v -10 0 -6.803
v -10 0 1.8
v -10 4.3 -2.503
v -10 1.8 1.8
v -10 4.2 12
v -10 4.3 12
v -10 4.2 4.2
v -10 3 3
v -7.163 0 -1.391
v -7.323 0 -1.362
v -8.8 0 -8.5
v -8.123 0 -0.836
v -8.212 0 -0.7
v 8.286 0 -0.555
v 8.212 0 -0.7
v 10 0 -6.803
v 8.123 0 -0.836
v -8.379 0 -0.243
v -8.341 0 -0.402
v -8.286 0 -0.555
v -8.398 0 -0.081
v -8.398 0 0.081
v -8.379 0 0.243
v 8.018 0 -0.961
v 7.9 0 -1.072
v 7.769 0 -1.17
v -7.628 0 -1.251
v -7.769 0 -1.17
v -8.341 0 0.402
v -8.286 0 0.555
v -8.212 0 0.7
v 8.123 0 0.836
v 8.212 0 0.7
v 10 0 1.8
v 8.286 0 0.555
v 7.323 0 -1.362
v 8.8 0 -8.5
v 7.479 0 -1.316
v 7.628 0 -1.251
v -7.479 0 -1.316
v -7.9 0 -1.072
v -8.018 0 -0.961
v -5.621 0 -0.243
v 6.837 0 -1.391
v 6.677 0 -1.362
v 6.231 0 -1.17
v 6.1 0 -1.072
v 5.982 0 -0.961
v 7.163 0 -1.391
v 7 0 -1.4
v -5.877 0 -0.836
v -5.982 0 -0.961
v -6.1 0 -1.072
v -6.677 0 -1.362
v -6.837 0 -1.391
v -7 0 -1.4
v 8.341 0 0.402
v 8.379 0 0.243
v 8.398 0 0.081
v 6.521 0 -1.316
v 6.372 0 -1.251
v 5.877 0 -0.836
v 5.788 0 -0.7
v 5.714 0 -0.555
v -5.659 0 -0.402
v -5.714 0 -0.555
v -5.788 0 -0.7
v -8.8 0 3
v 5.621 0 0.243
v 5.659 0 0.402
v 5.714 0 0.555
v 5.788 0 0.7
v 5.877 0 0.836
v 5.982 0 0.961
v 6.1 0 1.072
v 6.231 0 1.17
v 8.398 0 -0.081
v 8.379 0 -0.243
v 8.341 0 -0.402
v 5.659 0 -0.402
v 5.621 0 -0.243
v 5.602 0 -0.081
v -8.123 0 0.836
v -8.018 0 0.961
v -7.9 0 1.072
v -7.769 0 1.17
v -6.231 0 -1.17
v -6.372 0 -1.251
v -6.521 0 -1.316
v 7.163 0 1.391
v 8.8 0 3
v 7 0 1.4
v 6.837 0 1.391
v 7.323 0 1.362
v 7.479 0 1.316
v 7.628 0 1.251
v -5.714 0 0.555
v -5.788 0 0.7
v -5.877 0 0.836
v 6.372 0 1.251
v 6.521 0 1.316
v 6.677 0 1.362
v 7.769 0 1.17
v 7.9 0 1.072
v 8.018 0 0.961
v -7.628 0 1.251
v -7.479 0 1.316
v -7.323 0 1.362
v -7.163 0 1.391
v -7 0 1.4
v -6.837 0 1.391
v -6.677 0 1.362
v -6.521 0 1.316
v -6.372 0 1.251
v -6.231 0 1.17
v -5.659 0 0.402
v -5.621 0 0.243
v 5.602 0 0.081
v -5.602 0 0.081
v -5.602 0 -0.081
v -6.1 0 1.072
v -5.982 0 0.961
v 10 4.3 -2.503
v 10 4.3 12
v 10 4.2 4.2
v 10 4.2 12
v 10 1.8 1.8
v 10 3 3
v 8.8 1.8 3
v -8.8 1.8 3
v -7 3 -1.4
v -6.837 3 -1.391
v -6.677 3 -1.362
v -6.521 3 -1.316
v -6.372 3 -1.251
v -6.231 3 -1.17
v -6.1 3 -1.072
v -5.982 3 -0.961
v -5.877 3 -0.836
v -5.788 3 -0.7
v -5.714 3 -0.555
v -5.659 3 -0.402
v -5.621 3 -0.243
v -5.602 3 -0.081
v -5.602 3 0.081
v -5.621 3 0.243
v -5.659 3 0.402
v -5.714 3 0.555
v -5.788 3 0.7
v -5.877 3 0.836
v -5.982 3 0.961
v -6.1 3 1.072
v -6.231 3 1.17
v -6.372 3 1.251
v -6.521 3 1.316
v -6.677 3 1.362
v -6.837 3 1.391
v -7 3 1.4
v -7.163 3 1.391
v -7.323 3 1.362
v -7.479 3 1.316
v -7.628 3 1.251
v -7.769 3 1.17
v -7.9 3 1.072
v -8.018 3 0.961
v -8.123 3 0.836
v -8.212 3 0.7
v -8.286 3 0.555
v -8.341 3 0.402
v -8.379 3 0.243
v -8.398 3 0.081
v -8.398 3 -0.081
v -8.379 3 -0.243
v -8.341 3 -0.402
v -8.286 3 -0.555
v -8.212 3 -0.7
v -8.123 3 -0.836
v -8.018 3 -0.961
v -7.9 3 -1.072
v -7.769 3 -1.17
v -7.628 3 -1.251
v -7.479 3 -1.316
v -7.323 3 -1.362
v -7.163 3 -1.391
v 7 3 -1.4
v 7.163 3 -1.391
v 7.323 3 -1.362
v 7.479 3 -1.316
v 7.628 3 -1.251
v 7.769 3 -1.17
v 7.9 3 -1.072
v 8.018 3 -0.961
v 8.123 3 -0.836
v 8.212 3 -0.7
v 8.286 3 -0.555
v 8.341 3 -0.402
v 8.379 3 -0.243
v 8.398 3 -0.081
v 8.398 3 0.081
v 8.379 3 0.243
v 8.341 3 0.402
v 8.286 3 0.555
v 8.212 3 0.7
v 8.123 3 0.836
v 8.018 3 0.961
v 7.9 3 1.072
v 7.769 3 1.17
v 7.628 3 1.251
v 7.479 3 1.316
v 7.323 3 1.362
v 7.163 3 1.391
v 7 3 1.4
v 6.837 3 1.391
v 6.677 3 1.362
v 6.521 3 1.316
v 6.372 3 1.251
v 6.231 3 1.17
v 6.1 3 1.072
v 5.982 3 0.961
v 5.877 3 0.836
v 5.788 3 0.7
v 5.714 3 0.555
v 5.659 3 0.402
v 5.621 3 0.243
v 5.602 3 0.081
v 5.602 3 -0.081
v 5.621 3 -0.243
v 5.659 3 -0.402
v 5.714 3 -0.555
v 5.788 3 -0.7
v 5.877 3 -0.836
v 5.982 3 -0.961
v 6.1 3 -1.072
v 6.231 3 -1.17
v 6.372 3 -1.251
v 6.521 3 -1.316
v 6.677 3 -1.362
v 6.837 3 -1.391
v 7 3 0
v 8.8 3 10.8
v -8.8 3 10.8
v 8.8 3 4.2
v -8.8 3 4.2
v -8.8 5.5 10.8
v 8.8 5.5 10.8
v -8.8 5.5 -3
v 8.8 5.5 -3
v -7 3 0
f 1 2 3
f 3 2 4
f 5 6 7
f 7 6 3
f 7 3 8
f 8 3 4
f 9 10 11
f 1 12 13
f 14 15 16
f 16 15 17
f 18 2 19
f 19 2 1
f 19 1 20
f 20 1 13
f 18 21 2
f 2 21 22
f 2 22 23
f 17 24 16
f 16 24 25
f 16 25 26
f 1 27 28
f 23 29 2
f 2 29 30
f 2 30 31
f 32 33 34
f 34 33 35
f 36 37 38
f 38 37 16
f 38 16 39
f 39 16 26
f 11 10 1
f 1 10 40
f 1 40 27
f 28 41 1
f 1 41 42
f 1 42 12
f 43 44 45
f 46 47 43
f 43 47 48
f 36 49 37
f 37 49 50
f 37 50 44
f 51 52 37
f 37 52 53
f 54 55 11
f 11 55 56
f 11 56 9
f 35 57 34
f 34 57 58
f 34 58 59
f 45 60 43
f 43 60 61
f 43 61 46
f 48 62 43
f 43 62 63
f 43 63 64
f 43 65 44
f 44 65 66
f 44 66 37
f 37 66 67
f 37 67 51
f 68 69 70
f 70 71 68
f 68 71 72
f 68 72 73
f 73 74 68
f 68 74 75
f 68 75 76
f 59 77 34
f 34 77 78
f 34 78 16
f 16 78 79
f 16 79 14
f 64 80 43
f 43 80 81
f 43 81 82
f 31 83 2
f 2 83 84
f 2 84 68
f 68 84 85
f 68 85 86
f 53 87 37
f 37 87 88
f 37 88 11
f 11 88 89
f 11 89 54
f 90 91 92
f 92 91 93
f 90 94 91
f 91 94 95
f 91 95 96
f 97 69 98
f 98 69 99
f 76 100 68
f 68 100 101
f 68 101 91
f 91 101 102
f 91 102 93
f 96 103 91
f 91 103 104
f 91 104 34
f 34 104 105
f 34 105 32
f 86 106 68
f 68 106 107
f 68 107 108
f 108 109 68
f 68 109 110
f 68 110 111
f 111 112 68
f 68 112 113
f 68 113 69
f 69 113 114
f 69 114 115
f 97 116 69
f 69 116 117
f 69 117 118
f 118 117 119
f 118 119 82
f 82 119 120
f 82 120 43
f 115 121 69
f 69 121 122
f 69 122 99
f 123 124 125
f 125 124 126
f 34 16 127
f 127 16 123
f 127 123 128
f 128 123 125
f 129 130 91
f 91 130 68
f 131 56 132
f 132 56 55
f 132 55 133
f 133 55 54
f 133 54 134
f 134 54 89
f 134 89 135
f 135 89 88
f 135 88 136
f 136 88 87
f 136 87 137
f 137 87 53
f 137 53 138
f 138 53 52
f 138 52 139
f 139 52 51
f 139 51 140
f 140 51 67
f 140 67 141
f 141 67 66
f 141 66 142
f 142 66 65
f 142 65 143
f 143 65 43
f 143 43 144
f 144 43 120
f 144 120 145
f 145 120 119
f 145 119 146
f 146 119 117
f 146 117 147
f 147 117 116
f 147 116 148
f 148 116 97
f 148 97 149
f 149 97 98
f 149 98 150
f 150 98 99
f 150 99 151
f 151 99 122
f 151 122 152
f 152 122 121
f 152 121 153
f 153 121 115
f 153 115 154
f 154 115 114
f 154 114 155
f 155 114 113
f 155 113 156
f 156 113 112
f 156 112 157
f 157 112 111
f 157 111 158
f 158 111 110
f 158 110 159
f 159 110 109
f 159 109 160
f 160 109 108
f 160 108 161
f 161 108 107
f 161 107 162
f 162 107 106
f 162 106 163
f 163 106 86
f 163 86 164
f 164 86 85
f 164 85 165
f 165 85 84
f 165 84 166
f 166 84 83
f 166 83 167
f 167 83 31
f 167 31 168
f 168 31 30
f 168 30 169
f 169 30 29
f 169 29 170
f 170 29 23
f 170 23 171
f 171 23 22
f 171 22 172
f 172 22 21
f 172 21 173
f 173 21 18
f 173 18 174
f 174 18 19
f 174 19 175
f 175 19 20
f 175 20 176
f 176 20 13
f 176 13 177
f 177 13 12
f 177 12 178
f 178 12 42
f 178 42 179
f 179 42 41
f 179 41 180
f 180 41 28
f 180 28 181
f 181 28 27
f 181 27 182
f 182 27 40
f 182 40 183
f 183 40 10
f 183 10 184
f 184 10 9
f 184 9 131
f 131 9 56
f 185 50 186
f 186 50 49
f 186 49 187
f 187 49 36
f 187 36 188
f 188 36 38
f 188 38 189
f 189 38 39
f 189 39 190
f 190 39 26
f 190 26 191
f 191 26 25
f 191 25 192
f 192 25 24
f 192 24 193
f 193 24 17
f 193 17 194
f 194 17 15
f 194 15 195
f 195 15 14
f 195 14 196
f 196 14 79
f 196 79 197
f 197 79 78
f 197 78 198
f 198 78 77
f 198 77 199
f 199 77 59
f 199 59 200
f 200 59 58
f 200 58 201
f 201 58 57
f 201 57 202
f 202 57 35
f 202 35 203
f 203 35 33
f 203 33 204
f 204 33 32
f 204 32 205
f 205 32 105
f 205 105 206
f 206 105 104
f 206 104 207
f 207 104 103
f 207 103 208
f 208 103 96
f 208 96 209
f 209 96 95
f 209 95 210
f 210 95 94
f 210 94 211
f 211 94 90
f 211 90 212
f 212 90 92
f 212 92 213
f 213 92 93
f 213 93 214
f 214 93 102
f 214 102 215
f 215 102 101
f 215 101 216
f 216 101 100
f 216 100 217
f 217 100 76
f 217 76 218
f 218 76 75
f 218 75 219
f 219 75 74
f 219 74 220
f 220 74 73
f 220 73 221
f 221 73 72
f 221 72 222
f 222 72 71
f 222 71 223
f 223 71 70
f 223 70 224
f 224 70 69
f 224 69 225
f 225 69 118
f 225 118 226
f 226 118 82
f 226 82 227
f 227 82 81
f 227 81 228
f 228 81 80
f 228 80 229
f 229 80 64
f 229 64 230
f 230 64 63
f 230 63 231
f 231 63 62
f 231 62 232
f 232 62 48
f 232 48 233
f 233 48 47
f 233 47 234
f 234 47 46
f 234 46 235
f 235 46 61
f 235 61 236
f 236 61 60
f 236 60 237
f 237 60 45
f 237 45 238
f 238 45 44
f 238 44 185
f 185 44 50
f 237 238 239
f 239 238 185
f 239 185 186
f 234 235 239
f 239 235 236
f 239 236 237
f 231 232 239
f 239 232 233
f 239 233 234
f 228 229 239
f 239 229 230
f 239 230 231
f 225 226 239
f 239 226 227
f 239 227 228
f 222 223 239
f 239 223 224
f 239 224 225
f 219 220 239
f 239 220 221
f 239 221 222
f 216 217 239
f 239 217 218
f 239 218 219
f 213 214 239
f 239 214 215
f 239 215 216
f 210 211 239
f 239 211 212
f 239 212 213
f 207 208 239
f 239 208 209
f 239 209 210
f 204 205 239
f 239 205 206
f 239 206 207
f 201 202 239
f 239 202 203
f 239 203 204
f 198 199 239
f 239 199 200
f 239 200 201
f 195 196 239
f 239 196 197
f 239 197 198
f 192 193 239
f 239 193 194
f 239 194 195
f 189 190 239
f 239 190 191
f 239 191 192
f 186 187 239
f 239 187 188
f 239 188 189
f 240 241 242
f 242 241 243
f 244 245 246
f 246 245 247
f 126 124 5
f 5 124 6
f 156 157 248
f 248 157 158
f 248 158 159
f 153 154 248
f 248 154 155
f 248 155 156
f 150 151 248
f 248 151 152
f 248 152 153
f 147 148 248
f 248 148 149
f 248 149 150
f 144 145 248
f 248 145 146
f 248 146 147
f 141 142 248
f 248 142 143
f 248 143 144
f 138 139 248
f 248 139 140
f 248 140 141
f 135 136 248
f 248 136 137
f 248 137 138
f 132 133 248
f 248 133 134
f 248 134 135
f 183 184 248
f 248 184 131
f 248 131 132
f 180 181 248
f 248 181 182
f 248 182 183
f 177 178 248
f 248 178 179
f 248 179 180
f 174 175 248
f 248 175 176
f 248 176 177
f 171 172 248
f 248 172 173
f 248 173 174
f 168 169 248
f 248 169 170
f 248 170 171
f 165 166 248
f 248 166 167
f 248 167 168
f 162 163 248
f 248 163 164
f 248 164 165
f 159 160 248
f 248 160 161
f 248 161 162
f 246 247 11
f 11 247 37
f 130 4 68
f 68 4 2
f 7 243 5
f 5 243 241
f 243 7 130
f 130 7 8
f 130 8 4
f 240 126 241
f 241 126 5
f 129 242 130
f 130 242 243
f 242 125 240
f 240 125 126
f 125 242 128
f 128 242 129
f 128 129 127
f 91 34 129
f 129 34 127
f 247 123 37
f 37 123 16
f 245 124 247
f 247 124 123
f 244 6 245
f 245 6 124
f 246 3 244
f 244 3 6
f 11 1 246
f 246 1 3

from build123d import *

# Parameters (mm, degrees)
SKETCH_1_W      = 20
SKETCH_1_H      = 6
SKETCH_1_R      = 1.4
EXTRUDE_1_DEPTH = 3
SKETCH_2_W      = 20
SKETCH_2_H      = 15
EXTRUDE_2_DEPTH = 2.5
EXTRUDE_3_DEPTH = 20
CHAMFER_1_SIZE  = 1.2


with BuildPart() as part:
    # 草图1 → 凸台-拉伸1 (new body)
    with BuildSketch(Plane(origin=(0, 0, 0), x_dir=(1, 0, 0), z_dir=(0, 1, 0))):
        Rectangle(SKETCH_1_W, SKETCH_1_H)
        with Locations((-7, 0)):
            Circle(SKETCH_1_R, mode=Mode.SUBTRACT)
        with Locations((7, 0)):
            Circle(SKETCH_1_R, mode=Mode.SUBTRACT)
    extrude(amount=EXTRUDE_1_DEPTH)

    # 草图2 → 凸台-拉伸2 (add)
    with BuildSketch(Plane(origin=(0, 3, 0), x_dir=(1, 0, 0), z_dir=(0, 1, 0))):
        with Locations((0, -4.5)):
            Rectangle(SKETCH_2_W, SKETCH_2_H)
    extrude(amount=EXTRUDE_2_DEPTH)

    # 草图3 → 凸台-拉伸3 (add)
    with BuildSketch(Plane.ZY.offset(10)):
        Polygon((-3, 5.5), (-8.5, 0), (-3, 0), align=None)
    extrude(amount=-EXTRUDE_3_DEPTH)

    # 倒角1
    chamfer_1_edges = [part.edges().sort_by_distance(p)[0] for p in [
        (0, 3, 3),
        (-10, 3, 7.5),
        (0, 3, 12),
        (10, 3, 7.5),
        (-10, 5.5, 4.5),
        (0, 5.5, 12),
        (10, 5.5, 4.5),
        (10, 2.75, -5.75),
        (-10, 2.75, -5.75),
        (10, 1.5, 3),
        (-10, 1.5, 3),
    ]]
    chamfer(chamfer_1_edges, length=CHAMFER_1_SIZE)


solid = part.part
